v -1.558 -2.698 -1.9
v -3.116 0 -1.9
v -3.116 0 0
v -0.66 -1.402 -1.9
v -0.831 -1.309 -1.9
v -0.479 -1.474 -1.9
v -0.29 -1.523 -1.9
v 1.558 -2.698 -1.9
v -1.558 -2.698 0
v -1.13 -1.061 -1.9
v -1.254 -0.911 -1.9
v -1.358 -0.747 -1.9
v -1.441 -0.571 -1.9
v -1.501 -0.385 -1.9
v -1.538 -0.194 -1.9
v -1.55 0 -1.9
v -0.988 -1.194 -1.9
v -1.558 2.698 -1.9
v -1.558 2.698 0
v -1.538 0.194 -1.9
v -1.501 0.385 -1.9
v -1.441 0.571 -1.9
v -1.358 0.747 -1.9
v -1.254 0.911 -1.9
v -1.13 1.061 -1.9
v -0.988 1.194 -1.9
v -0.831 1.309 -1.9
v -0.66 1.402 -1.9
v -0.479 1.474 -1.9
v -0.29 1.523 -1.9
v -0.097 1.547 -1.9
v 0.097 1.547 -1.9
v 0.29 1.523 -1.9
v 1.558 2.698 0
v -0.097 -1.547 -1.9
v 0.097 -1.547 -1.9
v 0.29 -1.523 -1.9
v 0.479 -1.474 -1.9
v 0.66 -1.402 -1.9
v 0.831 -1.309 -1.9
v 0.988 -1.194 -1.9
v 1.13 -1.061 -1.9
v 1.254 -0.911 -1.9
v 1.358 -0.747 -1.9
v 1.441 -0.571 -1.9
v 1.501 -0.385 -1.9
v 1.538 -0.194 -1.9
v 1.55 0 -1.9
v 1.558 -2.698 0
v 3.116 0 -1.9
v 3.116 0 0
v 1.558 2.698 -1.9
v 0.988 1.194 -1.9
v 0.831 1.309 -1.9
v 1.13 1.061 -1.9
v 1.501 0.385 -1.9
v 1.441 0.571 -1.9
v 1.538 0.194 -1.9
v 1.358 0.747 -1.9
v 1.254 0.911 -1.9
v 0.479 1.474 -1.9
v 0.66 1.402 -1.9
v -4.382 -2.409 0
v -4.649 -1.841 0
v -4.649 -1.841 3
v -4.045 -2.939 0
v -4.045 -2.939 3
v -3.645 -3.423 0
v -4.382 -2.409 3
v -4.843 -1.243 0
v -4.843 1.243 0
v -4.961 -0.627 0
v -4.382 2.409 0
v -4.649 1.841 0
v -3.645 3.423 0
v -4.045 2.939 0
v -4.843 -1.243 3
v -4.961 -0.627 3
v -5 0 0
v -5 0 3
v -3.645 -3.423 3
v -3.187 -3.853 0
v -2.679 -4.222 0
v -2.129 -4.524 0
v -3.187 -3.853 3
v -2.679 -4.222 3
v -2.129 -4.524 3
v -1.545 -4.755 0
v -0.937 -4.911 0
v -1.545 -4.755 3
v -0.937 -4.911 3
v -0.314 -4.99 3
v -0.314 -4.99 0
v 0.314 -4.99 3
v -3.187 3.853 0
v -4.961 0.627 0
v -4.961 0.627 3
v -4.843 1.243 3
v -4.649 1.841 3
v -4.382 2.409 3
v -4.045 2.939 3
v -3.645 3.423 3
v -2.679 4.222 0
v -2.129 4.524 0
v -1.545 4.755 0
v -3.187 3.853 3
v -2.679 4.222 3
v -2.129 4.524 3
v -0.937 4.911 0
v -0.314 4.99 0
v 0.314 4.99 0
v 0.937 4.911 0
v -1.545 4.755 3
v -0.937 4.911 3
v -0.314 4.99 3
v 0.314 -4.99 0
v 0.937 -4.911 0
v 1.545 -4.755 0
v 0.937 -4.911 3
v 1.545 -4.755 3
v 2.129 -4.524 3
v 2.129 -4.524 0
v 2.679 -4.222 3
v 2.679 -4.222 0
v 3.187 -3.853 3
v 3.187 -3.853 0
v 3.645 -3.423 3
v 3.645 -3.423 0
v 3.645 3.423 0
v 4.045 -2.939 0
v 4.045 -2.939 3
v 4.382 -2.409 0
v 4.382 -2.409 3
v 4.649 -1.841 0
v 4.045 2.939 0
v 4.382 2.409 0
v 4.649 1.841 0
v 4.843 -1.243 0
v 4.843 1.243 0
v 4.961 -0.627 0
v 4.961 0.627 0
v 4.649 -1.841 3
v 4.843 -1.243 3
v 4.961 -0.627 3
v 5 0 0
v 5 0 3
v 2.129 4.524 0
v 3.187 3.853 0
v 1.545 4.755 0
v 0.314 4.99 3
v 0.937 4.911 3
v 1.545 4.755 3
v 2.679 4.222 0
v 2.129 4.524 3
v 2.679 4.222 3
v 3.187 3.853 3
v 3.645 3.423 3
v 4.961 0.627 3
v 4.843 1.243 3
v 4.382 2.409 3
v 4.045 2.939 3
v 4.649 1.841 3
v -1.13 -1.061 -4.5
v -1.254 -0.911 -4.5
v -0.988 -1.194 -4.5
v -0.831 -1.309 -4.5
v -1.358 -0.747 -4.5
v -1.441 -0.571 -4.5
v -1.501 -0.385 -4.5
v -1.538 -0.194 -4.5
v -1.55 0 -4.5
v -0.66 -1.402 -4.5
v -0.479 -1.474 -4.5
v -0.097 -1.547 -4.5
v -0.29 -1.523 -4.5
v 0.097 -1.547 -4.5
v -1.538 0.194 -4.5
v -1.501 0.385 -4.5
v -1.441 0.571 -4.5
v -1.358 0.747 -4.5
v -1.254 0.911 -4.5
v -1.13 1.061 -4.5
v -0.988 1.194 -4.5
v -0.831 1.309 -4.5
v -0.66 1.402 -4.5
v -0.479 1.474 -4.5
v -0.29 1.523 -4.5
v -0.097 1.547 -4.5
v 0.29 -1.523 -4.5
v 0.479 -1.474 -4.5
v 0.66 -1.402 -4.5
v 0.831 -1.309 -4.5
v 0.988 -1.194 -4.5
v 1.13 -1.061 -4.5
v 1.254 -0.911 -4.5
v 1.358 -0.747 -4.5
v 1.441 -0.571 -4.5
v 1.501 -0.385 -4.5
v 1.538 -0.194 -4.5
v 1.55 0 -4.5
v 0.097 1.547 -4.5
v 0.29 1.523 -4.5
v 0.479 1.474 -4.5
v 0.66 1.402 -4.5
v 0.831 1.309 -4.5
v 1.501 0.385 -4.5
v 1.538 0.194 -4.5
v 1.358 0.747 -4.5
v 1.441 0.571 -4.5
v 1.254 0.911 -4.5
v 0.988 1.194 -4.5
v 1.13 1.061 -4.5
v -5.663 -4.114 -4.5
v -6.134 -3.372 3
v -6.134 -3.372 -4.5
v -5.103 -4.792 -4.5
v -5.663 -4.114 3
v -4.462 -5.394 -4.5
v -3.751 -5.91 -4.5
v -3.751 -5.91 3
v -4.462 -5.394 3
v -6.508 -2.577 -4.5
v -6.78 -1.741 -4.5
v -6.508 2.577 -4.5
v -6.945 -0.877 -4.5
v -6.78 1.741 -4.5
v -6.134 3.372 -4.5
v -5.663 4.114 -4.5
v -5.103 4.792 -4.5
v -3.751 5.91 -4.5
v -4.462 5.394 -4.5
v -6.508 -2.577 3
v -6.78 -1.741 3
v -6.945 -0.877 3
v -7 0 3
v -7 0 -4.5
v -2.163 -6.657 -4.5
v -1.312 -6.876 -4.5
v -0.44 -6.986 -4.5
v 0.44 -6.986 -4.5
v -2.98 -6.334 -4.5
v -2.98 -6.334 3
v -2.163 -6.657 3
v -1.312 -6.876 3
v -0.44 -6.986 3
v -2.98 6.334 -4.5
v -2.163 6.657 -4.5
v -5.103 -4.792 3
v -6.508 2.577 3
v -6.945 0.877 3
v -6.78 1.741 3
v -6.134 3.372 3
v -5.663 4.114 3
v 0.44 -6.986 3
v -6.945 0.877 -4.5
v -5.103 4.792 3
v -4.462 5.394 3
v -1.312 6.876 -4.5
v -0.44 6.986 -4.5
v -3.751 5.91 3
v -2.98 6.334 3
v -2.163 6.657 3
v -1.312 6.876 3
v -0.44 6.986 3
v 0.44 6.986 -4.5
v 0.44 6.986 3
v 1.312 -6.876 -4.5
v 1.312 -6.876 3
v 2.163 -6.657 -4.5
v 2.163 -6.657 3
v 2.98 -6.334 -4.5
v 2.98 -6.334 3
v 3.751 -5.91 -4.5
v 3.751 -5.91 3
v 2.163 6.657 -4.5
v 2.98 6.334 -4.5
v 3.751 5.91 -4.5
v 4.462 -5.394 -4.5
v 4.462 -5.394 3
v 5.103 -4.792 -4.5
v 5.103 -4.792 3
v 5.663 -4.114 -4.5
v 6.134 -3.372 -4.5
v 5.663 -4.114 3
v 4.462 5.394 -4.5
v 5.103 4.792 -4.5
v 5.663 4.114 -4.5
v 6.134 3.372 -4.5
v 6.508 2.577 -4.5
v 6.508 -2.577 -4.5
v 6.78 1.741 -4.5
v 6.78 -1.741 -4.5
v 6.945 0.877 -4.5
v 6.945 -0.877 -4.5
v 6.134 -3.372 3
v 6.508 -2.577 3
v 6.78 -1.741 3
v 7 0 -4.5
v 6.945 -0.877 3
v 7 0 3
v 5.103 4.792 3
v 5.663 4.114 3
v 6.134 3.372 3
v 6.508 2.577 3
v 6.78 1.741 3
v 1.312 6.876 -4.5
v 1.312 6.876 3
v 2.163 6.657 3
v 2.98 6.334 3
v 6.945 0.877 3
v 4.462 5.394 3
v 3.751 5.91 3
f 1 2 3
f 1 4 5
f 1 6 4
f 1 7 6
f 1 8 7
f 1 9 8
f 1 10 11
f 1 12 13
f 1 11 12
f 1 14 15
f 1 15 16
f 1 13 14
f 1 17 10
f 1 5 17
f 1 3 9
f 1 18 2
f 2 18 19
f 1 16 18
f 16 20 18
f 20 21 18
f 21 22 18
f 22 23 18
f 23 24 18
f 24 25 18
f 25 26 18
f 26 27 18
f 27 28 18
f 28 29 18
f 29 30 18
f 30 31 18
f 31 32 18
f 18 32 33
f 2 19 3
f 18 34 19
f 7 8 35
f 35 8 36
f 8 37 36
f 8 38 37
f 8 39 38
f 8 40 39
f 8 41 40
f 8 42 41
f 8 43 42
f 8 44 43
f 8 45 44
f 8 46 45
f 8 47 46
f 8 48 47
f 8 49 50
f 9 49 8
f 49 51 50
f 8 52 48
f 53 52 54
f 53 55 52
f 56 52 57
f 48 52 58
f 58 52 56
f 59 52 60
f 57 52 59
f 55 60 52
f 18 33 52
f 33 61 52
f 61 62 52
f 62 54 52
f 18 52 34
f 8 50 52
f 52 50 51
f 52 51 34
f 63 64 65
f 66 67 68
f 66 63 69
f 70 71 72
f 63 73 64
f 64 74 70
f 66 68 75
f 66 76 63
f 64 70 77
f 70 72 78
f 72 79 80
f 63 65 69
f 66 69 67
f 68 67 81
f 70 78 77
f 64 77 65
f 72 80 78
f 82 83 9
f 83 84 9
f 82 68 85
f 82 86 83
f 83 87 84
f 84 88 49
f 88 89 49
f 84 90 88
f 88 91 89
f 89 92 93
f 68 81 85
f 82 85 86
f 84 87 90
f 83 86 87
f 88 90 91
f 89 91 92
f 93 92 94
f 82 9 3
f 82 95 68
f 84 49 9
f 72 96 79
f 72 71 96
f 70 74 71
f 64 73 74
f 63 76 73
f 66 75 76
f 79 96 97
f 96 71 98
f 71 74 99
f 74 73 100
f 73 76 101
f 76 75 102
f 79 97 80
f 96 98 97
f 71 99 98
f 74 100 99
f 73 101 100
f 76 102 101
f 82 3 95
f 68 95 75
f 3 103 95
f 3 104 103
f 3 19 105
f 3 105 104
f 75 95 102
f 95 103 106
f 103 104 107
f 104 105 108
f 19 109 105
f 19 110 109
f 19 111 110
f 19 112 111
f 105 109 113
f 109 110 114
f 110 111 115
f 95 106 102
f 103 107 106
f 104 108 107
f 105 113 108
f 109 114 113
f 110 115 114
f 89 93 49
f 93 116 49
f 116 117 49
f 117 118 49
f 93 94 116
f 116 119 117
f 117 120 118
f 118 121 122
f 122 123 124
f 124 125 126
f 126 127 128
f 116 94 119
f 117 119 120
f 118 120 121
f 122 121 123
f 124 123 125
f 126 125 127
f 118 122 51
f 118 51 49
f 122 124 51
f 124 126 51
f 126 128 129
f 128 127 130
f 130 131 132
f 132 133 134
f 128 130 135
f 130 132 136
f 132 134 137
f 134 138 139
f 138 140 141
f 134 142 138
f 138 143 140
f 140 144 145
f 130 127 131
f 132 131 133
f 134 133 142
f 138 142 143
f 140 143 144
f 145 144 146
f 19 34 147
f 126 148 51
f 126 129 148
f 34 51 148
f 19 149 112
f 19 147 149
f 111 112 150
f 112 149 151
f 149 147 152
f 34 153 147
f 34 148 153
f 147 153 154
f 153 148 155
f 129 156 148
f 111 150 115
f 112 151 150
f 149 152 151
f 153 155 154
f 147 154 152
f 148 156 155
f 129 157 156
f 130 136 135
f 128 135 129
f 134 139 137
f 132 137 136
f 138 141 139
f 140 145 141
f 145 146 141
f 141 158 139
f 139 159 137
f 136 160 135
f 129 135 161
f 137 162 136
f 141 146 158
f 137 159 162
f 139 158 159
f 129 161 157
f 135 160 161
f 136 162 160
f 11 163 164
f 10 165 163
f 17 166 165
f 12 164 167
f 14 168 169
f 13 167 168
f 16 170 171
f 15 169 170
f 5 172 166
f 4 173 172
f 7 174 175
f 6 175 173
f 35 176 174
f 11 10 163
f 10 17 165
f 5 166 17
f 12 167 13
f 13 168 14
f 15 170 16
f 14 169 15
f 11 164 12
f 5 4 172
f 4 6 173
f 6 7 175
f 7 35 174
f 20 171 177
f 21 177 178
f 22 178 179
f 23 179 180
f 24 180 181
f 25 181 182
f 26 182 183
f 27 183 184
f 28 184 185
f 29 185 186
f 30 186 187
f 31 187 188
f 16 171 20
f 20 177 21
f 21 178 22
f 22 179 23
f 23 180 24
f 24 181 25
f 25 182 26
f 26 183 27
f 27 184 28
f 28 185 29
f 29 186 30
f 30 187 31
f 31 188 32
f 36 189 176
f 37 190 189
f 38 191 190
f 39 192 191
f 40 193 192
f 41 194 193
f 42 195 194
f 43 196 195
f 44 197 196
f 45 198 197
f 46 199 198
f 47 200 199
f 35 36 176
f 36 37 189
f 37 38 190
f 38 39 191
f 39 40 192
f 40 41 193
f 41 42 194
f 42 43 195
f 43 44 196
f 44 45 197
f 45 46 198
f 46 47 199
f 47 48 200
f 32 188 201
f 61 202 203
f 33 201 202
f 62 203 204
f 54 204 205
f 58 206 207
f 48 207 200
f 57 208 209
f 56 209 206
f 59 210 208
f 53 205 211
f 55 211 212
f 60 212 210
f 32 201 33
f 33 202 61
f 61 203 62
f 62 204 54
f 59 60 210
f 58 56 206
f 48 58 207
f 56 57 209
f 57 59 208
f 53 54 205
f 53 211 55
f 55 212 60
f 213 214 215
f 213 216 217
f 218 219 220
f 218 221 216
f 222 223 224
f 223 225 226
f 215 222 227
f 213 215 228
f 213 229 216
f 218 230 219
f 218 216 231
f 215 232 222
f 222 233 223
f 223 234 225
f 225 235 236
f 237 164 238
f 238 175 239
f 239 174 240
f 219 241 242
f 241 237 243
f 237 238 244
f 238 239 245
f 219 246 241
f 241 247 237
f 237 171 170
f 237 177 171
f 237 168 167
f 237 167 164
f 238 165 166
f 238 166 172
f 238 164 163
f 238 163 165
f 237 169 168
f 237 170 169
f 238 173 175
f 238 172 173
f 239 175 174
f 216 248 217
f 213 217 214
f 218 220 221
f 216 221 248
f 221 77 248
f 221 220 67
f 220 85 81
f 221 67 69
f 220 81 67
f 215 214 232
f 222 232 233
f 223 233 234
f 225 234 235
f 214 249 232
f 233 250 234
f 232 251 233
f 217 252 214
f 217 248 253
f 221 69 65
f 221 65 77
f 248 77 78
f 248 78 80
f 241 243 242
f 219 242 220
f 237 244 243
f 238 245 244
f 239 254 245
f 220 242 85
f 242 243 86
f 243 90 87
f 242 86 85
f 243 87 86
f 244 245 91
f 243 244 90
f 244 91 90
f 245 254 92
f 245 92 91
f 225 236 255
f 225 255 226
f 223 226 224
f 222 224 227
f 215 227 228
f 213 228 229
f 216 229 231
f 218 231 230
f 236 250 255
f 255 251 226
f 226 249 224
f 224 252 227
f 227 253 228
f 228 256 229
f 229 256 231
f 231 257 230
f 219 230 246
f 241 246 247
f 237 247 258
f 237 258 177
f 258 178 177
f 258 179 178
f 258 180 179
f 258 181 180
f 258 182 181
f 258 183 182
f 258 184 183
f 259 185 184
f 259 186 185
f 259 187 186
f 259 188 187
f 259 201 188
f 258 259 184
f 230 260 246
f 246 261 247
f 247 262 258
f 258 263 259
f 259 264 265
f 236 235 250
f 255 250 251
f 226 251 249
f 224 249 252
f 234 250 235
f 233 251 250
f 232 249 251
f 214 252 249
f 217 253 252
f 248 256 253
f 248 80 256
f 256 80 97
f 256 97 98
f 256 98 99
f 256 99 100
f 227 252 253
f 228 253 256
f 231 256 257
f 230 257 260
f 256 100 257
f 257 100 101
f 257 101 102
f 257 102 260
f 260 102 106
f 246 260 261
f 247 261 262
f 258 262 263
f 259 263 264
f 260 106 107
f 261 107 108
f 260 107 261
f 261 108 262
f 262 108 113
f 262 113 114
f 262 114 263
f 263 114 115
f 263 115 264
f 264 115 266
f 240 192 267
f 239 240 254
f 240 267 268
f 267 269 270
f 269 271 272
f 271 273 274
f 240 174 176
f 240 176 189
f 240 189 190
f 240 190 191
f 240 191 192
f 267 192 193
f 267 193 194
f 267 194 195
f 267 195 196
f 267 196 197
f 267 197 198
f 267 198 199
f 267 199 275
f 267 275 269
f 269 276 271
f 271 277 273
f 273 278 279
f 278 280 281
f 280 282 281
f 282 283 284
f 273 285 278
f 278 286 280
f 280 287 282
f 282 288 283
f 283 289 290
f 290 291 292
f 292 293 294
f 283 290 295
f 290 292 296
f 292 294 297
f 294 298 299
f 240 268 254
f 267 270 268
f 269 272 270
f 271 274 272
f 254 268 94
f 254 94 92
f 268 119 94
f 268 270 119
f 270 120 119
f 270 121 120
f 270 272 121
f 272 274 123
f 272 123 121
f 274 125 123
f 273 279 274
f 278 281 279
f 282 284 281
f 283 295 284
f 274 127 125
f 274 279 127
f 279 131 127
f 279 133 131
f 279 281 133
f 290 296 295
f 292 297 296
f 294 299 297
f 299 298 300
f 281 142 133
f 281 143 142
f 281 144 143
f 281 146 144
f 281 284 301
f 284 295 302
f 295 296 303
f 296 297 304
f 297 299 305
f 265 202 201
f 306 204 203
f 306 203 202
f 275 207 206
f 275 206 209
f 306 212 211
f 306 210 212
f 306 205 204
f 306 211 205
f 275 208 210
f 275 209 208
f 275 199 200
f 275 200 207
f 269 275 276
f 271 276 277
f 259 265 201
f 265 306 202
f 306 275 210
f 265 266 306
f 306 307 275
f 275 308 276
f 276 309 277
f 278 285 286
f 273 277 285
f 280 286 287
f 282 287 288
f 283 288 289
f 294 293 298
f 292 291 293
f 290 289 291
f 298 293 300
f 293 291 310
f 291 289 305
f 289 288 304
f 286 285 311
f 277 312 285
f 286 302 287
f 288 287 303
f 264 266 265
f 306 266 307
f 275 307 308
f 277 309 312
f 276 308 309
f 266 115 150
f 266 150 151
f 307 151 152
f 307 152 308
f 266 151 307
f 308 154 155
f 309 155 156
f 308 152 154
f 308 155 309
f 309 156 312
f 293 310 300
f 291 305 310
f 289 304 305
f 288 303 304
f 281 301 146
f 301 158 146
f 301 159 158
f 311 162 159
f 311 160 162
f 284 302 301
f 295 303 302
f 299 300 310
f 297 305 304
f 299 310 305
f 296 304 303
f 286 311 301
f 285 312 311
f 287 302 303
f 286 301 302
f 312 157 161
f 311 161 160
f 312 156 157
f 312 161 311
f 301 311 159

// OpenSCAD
$fn = 50;

difference() {
	union() {
		translate(v = [0, 0, -4.5]) {
			cylinder(h = 7.5, r = 7.0);
		}
	}
	union() {
		translate(v = [0, 0, 0]) {
			rotate(a = [0, 0, 0]) {
				difference() {
					union() {
						translate(v = [0, 0, -1.9]) {
							linear_extrude(height = 1.9) {
								polygon(points = [[3.1158, 0.0], [1.5579000000000005, 2.698361953111554], [-1.5578999999999994, 2.6983619531115544], [-3.1158, 3.815754496783323e-16], [-1.5579000000000014, -2.6983619531115535], [1.557899999999998, -2.6983619531115552]]);
							}
						}
					}
					union();
				}
			}
		}
		#cylinder(h = 3, r = 5.0);
		#translate(v = [0, 0, -100.0]) {
			cylinder(h = 200, r = 1.55);
		}
	}
}
